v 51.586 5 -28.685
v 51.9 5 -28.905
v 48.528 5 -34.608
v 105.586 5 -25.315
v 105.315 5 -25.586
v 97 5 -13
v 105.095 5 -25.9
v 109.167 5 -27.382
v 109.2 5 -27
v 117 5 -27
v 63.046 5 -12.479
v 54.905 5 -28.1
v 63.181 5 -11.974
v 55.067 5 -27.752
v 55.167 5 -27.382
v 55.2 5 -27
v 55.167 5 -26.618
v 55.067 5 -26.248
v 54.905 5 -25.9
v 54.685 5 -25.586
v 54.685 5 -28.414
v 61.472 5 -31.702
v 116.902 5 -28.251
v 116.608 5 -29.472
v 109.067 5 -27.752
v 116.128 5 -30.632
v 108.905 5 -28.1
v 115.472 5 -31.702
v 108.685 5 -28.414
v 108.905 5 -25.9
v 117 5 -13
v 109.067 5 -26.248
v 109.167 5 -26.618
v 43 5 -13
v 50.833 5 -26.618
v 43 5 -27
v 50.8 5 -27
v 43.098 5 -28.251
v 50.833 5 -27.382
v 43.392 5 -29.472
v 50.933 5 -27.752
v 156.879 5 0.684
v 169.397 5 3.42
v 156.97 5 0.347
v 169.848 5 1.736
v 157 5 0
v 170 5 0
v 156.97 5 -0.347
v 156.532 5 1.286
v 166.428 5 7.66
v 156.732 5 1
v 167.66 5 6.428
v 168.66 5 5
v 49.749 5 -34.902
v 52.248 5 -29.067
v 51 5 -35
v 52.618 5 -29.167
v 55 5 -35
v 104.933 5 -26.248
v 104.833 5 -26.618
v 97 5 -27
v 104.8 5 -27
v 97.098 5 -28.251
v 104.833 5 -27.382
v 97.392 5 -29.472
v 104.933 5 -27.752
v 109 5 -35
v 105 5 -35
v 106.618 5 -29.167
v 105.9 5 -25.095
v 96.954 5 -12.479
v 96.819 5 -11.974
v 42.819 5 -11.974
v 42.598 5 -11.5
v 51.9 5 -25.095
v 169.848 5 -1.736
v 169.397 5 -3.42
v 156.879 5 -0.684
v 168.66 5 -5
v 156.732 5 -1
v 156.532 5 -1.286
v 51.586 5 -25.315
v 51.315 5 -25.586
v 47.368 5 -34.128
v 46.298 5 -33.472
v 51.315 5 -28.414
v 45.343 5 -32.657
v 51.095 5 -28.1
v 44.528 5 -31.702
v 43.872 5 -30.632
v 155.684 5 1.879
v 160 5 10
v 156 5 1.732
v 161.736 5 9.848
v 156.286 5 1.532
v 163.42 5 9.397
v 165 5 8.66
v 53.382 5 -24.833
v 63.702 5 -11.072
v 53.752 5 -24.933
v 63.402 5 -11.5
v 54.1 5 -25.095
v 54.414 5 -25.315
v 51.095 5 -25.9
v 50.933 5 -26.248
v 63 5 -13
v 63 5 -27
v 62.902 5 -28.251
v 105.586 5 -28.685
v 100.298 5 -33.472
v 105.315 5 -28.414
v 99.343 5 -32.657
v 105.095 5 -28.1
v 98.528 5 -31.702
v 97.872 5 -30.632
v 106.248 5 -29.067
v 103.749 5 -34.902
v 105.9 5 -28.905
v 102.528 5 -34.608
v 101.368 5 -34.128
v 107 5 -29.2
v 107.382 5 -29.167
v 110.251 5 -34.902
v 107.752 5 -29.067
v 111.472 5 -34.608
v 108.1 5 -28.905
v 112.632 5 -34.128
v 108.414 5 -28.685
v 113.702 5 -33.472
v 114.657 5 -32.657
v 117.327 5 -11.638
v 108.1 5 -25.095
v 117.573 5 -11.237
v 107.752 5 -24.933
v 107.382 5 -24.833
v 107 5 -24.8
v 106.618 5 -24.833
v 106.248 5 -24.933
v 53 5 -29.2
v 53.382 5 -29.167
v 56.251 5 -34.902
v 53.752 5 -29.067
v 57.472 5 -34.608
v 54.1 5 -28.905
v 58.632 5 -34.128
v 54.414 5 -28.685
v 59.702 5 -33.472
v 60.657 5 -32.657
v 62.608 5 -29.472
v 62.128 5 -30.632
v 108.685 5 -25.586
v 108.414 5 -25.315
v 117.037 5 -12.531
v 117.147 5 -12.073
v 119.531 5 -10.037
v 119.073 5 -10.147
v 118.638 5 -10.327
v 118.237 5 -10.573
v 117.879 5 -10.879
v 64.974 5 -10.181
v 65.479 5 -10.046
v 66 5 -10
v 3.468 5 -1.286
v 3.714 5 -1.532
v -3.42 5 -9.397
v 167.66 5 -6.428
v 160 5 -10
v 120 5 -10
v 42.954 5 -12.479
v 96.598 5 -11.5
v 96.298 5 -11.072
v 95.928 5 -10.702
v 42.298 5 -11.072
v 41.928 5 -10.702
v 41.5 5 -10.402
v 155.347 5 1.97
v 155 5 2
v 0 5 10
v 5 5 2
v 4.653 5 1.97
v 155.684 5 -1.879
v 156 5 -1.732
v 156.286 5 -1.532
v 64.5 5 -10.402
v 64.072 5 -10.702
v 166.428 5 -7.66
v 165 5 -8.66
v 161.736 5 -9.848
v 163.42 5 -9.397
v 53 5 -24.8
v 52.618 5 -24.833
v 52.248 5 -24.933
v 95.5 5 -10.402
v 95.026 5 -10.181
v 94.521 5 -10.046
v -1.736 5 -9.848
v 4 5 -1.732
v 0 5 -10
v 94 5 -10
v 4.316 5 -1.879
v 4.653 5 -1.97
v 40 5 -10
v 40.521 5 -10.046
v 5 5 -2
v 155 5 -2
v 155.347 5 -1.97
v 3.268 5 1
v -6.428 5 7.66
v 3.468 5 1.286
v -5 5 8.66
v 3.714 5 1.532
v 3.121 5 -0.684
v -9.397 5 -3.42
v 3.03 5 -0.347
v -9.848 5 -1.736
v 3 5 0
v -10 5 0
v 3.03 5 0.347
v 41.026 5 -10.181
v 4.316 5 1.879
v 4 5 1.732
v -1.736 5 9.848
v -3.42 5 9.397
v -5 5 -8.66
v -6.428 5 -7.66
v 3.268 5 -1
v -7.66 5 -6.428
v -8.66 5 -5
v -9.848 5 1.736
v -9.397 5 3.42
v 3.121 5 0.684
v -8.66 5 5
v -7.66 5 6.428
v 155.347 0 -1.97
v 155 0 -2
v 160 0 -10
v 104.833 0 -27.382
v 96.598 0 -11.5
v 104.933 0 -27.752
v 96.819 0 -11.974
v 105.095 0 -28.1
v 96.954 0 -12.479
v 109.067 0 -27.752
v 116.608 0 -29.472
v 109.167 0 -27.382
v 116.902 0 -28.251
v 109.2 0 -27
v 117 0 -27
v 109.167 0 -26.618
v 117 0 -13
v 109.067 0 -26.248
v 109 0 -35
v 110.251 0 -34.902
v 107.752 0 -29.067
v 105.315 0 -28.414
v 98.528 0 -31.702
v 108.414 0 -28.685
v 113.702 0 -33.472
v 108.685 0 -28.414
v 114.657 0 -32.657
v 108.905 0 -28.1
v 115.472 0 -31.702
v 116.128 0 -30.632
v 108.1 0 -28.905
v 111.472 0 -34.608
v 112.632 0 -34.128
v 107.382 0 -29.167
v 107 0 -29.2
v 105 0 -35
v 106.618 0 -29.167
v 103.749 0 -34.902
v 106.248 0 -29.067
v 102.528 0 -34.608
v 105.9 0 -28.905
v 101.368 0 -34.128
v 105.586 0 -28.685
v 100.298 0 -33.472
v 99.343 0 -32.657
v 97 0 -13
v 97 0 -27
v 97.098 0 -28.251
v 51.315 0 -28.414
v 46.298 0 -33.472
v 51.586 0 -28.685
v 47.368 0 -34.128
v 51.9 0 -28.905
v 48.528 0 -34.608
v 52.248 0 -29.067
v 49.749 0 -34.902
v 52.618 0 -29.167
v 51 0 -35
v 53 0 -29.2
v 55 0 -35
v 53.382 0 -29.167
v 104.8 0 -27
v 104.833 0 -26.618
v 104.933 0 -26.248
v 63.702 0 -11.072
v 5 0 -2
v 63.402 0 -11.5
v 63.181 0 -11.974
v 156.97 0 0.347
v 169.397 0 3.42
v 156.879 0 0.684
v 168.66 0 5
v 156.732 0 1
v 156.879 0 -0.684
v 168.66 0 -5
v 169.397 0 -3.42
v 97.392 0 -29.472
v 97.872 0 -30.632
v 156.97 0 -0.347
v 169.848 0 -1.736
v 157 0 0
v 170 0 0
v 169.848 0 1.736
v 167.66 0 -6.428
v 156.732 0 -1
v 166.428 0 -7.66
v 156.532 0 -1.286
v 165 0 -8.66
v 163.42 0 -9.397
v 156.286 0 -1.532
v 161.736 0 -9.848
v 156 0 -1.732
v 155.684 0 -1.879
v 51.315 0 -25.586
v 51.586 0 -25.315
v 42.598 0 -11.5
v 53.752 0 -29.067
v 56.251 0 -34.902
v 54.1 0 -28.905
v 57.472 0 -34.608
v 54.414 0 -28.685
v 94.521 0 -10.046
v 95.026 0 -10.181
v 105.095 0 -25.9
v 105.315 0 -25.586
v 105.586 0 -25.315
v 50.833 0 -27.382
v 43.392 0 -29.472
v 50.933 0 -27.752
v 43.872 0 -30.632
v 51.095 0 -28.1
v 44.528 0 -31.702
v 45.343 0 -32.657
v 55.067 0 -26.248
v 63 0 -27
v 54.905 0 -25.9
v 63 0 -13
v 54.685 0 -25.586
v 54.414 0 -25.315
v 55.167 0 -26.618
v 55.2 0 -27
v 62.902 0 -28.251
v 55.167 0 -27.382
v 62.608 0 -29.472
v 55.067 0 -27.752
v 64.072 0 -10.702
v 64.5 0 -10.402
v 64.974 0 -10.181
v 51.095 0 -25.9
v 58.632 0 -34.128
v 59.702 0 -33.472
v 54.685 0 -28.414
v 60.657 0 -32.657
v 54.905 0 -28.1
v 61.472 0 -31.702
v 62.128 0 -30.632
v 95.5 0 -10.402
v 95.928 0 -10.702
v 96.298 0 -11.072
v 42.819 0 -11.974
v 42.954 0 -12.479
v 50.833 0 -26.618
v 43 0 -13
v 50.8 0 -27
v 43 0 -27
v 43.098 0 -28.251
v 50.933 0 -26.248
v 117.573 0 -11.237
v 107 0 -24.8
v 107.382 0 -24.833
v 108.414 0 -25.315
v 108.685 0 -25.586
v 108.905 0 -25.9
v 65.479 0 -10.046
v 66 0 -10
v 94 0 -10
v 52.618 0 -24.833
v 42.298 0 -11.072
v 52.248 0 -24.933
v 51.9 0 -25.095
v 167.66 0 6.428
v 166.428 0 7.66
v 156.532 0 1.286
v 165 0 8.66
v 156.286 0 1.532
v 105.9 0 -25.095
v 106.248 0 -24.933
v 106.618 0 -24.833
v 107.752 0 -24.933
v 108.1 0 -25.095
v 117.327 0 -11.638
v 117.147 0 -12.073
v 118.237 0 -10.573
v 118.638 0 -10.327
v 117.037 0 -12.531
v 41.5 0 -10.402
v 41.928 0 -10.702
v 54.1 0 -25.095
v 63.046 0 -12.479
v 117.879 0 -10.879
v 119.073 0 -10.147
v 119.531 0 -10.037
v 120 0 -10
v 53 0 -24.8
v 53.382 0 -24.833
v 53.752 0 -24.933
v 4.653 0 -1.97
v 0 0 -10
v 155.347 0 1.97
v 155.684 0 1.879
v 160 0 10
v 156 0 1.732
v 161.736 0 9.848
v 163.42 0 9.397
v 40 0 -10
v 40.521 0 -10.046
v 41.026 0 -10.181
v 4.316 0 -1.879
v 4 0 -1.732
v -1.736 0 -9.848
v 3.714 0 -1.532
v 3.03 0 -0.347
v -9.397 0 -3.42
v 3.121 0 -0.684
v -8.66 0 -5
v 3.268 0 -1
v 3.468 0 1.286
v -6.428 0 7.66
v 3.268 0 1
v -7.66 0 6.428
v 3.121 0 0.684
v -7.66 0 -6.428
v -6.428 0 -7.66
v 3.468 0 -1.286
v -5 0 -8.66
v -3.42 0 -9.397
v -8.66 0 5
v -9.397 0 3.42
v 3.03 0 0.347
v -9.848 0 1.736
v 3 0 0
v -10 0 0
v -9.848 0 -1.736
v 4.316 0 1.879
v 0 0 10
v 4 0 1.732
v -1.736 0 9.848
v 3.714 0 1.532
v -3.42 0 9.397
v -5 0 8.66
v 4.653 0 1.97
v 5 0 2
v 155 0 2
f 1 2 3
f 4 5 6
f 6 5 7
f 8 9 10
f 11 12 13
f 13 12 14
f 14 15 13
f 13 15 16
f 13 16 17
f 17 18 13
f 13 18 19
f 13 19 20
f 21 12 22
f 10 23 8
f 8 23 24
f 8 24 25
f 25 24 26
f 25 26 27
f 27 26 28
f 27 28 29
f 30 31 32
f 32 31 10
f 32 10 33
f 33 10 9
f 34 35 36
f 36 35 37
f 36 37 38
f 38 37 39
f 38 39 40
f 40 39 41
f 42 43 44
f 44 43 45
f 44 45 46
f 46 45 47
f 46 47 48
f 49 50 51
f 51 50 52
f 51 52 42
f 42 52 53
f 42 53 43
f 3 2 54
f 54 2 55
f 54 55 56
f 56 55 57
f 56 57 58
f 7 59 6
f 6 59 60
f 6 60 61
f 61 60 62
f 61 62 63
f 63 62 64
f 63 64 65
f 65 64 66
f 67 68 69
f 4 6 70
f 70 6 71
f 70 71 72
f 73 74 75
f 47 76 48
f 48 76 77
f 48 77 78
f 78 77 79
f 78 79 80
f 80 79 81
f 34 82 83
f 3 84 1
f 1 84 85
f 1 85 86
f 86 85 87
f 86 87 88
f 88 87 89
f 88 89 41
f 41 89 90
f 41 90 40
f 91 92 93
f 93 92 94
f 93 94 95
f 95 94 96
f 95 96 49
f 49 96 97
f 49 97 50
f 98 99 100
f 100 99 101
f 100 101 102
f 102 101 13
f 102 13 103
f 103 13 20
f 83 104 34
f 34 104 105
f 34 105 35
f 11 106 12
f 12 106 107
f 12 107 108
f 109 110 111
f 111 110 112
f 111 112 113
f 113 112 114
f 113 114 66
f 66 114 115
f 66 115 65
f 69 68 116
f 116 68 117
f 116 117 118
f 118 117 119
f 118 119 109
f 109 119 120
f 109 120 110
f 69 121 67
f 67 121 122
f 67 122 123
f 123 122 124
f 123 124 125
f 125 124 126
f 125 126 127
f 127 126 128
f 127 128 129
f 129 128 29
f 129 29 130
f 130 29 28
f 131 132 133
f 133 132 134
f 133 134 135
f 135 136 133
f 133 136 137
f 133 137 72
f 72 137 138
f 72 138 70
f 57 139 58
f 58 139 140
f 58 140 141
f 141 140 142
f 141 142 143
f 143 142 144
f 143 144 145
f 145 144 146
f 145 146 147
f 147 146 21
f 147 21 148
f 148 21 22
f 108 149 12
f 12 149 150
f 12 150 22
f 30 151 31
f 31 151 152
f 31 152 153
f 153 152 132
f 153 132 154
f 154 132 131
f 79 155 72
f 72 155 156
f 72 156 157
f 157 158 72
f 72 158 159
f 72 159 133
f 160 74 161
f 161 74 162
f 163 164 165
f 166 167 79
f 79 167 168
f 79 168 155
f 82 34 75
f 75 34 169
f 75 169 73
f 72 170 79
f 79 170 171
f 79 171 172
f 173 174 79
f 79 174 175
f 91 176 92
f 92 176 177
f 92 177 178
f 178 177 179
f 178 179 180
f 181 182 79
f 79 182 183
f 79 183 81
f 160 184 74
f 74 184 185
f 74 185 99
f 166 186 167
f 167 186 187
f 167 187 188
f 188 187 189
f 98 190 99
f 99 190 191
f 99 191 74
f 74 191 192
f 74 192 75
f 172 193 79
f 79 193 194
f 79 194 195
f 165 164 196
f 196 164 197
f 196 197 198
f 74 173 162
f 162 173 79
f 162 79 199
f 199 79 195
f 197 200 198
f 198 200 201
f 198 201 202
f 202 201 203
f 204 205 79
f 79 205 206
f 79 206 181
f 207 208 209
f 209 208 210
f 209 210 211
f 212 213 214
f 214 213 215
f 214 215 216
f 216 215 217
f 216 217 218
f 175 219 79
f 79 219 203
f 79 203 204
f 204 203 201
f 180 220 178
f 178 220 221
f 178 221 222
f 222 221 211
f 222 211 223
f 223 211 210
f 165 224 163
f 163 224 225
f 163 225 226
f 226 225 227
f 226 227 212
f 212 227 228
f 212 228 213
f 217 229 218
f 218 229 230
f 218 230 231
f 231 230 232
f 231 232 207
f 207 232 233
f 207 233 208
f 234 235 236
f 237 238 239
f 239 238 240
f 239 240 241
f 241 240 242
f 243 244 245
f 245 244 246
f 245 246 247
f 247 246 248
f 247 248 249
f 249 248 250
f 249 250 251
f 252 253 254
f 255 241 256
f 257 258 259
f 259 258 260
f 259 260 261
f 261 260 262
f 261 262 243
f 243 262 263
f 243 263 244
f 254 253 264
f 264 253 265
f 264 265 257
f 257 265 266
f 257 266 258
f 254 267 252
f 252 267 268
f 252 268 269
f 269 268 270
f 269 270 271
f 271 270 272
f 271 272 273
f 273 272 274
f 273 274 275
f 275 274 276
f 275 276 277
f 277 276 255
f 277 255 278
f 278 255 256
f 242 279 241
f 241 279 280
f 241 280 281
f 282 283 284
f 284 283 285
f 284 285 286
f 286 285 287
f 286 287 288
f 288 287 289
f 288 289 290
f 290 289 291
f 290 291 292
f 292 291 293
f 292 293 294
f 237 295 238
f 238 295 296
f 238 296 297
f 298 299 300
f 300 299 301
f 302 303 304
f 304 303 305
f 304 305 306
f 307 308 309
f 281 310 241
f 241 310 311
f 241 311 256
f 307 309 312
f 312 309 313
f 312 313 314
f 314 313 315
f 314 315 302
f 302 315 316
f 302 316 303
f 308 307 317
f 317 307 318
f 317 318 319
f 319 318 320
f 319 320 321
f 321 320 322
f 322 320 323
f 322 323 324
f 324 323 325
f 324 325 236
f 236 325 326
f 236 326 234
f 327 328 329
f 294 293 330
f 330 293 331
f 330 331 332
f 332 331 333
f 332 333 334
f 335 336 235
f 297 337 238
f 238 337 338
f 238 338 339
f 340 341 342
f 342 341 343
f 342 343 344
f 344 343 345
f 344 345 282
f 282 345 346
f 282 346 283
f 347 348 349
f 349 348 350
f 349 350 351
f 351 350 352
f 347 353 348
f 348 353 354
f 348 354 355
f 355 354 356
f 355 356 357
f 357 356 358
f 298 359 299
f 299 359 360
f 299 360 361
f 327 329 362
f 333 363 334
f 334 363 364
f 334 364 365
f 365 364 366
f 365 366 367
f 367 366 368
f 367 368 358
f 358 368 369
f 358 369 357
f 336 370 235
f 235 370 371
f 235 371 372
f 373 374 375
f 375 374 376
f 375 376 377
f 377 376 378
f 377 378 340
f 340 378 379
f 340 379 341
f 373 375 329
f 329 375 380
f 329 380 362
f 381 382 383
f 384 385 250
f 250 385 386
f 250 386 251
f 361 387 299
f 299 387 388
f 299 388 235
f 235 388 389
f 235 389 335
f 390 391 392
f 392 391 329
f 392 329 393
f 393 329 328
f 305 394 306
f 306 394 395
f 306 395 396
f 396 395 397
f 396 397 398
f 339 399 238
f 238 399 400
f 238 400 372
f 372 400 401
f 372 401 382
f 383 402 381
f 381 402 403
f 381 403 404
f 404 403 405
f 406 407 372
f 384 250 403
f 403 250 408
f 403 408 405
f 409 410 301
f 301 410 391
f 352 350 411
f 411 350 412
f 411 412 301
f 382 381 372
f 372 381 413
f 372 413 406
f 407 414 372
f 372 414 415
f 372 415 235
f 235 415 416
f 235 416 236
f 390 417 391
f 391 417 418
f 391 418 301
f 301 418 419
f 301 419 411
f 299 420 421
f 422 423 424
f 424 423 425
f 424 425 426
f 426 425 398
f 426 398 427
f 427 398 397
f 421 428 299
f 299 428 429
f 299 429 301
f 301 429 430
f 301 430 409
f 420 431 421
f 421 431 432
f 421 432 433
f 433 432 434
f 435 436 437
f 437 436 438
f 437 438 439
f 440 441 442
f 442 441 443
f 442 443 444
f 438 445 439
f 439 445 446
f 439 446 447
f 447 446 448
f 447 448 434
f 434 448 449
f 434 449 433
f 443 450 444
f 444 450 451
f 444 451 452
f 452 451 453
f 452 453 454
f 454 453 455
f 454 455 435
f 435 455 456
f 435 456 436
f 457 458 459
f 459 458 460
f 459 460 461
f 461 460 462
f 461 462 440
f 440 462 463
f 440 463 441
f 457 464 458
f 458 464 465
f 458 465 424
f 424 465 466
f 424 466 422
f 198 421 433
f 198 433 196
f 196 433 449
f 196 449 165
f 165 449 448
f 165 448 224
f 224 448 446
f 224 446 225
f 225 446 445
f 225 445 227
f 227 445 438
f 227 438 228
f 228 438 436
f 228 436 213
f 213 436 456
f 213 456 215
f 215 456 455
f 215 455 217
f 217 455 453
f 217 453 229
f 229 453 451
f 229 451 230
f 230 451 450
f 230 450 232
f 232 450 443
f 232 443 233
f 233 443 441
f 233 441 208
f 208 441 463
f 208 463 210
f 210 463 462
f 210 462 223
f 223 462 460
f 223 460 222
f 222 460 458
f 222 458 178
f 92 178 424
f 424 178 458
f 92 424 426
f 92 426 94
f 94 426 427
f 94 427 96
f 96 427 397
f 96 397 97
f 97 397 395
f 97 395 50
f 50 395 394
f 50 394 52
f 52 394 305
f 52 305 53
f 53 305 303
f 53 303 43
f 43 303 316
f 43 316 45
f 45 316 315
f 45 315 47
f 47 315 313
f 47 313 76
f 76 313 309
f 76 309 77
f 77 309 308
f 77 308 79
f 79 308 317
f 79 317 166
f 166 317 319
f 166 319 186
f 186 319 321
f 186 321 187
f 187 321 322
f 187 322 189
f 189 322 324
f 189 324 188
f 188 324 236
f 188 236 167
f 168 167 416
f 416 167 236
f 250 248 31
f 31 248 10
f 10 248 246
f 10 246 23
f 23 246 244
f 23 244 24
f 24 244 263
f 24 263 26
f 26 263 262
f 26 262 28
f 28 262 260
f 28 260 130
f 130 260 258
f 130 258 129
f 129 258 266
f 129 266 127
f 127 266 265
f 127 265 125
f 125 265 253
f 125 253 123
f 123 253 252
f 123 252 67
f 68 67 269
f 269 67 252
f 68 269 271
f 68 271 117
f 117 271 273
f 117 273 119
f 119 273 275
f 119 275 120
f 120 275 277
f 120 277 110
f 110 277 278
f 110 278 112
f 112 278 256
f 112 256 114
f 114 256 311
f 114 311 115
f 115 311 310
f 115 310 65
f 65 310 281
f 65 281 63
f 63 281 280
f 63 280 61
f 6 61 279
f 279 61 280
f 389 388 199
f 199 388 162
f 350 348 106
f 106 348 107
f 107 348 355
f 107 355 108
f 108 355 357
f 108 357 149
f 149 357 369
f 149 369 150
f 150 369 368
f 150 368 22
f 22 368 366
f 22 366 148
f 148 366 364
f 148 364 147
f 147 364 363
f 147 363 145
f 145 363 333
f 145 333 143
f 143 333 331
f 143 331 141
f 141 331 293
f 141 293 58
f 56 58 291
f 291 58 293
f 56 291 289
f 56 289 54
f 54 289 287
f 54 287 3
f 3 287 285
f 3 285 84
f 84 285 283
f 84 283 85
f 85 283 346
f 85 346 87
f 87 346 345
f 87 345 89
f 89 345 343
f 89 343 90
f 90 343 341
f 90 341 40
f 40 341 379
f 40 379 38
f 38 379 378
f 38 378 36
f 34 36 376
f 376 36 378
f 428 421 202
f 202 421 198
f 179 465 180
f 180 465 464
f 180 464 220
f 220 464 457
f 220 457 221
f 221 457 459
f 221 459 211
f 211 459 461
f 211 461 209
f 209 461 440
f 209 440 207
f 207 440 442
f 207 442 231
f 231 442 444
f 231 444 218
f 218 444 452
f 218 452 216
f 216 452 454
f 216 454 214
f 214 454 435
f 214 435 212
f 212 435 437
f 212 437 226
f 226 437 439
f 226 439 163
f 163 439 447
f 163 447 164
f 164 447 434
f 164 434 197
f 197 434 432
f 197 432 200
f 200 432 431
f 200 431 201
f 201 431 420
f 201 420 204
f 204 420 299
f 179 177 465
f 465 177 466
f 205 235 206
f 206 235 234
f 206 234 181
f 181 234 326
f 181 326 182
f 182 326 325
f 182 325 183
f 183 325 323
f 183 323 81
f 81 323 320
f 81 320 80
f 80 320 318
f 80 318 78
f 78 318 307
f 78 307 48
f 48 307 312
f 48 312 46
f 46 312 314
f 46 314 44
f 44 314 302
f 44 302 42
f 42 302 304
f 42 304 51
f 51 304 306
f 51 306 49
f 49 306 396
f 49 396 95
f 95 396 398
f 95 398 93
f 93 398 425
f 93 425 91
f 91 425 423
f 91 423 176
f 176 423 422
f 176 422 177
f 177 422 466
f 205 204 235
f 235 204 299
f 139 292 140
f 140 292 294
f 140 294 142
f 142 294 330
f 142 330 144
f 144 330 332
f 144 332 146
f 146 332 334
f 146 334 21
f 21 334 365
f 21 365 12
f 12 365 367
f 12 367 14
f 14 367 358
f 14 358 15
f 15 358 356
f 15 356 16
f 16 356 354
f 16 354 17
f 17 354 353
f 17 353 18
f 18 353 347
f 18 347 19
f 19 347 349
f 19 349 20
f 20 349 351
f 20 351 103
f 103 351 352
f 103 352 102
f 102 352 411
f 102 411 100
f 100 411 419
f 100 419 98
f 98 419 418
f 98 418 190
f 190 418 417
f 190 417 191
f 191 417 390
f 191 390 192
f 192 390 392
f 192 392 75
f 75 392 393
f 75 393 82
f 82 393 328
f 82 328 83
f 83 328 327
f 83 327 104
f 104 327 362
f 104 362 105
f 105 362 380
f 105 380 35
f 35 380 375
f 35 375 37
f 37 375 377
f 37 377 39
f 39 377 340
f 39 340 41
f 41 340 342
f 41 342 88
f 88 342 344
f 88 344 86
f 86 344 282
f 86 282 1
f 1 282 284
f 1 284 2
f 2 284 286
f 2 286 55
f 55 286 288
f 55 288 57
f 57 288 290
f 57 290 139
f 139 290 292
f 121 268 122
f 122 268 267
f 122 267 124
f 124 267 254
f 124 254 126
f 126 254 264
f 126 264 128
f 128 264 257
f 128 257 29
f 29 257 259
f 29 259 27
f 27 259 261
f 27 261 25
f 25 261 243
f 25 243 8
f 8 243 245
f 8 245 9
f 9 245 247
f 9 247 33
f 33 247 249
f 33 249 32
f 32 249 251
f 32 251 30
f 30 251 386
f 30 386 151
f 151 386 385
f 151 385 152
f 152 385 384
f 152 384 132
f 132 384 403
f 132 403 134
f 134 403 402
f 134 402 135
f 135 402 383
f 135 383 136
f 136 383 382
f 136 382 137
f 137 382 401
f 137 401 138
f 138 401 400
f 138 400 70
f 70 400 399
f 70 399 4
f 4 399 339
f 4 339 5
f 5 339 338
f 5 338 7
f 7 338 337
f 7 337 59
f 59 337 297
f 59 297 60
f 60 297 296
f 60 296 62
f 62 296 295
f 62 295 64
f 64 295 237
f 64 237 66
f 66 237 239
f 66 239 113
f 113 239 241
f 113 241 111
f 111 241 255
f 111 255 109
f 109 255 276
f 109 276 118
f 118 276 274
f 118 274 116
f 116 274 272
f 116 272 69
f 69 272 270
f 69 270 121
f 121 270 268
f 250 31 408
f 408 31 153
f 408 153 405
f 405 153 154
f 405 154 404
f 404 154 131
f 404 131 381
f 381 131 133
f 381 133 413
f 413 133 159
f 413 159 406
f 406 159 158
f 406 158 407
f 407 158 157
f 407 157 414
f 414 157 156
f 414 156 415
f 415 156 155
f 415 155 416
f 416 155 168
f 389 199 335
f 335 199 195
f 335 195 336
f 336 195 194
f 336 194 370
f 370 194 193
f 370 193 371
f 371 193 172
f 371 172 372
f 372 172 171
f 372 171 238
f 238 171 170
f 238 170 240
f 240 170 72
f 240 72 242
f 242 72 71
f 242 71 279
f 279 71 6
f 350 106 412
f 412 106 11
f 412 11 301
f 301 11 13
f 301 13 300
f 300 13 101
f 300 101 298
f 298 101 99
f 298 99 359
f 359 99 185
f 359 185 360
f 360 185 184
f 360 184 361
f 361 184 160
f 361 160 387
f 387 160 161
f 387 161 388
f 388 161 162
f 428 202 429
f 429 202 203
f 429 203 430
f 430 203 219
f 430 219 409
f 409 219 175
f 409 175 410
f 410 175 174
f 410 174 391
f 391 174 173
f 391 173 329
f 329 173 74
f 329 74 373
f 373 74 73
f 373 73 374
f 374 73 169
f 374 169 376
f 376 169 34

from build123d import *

# Parameters (mm, degrees)
SKETCH1_R           = 2.2
BOSS_EXTRUDE1_DEPTH = 5
FILLET1_R           = 3


with BuildPart() as part:
    # Sketch1 → Boss-Extrude1 (new body)
    with BuildSketch(Plane(origin=(0, 0, 0), x_dir=(1, 0, 0), z_dir=(0, 1, 0))):
        with BuildLine():
            Line((0, 10), (43, 10))
            Line((43, 10), (43, 27))
            ThreePointArc((43, 27), (45.343145751, 32.656854249), (51, 35))
            Line((51, 35), (55, 35))
            ThreePointArc((55, 35), (60.656854249, 32.656854249), (63, 27))
            Line((63, 27), (63, 10))
            Line((63, 10), (97, 10))
            Line((97, 10), (97, 27))
            ThreePointArc((97, 27), (99.343145751, 32.656854249), (105, 35))
            Line((105, 35), (109, 35))
            ThreePointArc((109, 35), (114.656854249, 32.656854249), (117, 27))
            Line((117, 27), (117, 10))
            Line((117, 10), (160, 10))
            ThreePointArc((160, 10), (170, 0), (160, -10))
            Line((160, -10), (0, -10))
            ThreePointArc((0, -10), (-10, 0), (0, 10))
        make_face()
        with Locations((53, 27)):
            Circle(SKETCH1_R, mode=Mode.SUBTRACT)
        with Locations((107, 27)):
            Circle(SKETCH1_R, mode=Mode.SUBTRACT)
        with BuildLine():
            Line((5, 2), (155, 2))
            ThreePointArc((155, 2), (157, 0), (155, -2))
            Line((155, -2), (5, -2))
            ThreePointArc((5, -2), (3, 0), (5, 2))
        make_face(mode=Mode.SUBTRACT)
    extrude(amount=BOSS_EXTRUDE1_DEPTH)

    # Fillet1
    fillet1_edges = [part.edges().sort_by_distance(p)[0] for p in [
        (117, 2.5, -10),
        (97, 2.5, -10),
        (63, 2.5, -10),
        (43, 2.5, -10),
    ]]
    fillet(fillet1_edges, radius=FILLET1_R)


solid = part.part
